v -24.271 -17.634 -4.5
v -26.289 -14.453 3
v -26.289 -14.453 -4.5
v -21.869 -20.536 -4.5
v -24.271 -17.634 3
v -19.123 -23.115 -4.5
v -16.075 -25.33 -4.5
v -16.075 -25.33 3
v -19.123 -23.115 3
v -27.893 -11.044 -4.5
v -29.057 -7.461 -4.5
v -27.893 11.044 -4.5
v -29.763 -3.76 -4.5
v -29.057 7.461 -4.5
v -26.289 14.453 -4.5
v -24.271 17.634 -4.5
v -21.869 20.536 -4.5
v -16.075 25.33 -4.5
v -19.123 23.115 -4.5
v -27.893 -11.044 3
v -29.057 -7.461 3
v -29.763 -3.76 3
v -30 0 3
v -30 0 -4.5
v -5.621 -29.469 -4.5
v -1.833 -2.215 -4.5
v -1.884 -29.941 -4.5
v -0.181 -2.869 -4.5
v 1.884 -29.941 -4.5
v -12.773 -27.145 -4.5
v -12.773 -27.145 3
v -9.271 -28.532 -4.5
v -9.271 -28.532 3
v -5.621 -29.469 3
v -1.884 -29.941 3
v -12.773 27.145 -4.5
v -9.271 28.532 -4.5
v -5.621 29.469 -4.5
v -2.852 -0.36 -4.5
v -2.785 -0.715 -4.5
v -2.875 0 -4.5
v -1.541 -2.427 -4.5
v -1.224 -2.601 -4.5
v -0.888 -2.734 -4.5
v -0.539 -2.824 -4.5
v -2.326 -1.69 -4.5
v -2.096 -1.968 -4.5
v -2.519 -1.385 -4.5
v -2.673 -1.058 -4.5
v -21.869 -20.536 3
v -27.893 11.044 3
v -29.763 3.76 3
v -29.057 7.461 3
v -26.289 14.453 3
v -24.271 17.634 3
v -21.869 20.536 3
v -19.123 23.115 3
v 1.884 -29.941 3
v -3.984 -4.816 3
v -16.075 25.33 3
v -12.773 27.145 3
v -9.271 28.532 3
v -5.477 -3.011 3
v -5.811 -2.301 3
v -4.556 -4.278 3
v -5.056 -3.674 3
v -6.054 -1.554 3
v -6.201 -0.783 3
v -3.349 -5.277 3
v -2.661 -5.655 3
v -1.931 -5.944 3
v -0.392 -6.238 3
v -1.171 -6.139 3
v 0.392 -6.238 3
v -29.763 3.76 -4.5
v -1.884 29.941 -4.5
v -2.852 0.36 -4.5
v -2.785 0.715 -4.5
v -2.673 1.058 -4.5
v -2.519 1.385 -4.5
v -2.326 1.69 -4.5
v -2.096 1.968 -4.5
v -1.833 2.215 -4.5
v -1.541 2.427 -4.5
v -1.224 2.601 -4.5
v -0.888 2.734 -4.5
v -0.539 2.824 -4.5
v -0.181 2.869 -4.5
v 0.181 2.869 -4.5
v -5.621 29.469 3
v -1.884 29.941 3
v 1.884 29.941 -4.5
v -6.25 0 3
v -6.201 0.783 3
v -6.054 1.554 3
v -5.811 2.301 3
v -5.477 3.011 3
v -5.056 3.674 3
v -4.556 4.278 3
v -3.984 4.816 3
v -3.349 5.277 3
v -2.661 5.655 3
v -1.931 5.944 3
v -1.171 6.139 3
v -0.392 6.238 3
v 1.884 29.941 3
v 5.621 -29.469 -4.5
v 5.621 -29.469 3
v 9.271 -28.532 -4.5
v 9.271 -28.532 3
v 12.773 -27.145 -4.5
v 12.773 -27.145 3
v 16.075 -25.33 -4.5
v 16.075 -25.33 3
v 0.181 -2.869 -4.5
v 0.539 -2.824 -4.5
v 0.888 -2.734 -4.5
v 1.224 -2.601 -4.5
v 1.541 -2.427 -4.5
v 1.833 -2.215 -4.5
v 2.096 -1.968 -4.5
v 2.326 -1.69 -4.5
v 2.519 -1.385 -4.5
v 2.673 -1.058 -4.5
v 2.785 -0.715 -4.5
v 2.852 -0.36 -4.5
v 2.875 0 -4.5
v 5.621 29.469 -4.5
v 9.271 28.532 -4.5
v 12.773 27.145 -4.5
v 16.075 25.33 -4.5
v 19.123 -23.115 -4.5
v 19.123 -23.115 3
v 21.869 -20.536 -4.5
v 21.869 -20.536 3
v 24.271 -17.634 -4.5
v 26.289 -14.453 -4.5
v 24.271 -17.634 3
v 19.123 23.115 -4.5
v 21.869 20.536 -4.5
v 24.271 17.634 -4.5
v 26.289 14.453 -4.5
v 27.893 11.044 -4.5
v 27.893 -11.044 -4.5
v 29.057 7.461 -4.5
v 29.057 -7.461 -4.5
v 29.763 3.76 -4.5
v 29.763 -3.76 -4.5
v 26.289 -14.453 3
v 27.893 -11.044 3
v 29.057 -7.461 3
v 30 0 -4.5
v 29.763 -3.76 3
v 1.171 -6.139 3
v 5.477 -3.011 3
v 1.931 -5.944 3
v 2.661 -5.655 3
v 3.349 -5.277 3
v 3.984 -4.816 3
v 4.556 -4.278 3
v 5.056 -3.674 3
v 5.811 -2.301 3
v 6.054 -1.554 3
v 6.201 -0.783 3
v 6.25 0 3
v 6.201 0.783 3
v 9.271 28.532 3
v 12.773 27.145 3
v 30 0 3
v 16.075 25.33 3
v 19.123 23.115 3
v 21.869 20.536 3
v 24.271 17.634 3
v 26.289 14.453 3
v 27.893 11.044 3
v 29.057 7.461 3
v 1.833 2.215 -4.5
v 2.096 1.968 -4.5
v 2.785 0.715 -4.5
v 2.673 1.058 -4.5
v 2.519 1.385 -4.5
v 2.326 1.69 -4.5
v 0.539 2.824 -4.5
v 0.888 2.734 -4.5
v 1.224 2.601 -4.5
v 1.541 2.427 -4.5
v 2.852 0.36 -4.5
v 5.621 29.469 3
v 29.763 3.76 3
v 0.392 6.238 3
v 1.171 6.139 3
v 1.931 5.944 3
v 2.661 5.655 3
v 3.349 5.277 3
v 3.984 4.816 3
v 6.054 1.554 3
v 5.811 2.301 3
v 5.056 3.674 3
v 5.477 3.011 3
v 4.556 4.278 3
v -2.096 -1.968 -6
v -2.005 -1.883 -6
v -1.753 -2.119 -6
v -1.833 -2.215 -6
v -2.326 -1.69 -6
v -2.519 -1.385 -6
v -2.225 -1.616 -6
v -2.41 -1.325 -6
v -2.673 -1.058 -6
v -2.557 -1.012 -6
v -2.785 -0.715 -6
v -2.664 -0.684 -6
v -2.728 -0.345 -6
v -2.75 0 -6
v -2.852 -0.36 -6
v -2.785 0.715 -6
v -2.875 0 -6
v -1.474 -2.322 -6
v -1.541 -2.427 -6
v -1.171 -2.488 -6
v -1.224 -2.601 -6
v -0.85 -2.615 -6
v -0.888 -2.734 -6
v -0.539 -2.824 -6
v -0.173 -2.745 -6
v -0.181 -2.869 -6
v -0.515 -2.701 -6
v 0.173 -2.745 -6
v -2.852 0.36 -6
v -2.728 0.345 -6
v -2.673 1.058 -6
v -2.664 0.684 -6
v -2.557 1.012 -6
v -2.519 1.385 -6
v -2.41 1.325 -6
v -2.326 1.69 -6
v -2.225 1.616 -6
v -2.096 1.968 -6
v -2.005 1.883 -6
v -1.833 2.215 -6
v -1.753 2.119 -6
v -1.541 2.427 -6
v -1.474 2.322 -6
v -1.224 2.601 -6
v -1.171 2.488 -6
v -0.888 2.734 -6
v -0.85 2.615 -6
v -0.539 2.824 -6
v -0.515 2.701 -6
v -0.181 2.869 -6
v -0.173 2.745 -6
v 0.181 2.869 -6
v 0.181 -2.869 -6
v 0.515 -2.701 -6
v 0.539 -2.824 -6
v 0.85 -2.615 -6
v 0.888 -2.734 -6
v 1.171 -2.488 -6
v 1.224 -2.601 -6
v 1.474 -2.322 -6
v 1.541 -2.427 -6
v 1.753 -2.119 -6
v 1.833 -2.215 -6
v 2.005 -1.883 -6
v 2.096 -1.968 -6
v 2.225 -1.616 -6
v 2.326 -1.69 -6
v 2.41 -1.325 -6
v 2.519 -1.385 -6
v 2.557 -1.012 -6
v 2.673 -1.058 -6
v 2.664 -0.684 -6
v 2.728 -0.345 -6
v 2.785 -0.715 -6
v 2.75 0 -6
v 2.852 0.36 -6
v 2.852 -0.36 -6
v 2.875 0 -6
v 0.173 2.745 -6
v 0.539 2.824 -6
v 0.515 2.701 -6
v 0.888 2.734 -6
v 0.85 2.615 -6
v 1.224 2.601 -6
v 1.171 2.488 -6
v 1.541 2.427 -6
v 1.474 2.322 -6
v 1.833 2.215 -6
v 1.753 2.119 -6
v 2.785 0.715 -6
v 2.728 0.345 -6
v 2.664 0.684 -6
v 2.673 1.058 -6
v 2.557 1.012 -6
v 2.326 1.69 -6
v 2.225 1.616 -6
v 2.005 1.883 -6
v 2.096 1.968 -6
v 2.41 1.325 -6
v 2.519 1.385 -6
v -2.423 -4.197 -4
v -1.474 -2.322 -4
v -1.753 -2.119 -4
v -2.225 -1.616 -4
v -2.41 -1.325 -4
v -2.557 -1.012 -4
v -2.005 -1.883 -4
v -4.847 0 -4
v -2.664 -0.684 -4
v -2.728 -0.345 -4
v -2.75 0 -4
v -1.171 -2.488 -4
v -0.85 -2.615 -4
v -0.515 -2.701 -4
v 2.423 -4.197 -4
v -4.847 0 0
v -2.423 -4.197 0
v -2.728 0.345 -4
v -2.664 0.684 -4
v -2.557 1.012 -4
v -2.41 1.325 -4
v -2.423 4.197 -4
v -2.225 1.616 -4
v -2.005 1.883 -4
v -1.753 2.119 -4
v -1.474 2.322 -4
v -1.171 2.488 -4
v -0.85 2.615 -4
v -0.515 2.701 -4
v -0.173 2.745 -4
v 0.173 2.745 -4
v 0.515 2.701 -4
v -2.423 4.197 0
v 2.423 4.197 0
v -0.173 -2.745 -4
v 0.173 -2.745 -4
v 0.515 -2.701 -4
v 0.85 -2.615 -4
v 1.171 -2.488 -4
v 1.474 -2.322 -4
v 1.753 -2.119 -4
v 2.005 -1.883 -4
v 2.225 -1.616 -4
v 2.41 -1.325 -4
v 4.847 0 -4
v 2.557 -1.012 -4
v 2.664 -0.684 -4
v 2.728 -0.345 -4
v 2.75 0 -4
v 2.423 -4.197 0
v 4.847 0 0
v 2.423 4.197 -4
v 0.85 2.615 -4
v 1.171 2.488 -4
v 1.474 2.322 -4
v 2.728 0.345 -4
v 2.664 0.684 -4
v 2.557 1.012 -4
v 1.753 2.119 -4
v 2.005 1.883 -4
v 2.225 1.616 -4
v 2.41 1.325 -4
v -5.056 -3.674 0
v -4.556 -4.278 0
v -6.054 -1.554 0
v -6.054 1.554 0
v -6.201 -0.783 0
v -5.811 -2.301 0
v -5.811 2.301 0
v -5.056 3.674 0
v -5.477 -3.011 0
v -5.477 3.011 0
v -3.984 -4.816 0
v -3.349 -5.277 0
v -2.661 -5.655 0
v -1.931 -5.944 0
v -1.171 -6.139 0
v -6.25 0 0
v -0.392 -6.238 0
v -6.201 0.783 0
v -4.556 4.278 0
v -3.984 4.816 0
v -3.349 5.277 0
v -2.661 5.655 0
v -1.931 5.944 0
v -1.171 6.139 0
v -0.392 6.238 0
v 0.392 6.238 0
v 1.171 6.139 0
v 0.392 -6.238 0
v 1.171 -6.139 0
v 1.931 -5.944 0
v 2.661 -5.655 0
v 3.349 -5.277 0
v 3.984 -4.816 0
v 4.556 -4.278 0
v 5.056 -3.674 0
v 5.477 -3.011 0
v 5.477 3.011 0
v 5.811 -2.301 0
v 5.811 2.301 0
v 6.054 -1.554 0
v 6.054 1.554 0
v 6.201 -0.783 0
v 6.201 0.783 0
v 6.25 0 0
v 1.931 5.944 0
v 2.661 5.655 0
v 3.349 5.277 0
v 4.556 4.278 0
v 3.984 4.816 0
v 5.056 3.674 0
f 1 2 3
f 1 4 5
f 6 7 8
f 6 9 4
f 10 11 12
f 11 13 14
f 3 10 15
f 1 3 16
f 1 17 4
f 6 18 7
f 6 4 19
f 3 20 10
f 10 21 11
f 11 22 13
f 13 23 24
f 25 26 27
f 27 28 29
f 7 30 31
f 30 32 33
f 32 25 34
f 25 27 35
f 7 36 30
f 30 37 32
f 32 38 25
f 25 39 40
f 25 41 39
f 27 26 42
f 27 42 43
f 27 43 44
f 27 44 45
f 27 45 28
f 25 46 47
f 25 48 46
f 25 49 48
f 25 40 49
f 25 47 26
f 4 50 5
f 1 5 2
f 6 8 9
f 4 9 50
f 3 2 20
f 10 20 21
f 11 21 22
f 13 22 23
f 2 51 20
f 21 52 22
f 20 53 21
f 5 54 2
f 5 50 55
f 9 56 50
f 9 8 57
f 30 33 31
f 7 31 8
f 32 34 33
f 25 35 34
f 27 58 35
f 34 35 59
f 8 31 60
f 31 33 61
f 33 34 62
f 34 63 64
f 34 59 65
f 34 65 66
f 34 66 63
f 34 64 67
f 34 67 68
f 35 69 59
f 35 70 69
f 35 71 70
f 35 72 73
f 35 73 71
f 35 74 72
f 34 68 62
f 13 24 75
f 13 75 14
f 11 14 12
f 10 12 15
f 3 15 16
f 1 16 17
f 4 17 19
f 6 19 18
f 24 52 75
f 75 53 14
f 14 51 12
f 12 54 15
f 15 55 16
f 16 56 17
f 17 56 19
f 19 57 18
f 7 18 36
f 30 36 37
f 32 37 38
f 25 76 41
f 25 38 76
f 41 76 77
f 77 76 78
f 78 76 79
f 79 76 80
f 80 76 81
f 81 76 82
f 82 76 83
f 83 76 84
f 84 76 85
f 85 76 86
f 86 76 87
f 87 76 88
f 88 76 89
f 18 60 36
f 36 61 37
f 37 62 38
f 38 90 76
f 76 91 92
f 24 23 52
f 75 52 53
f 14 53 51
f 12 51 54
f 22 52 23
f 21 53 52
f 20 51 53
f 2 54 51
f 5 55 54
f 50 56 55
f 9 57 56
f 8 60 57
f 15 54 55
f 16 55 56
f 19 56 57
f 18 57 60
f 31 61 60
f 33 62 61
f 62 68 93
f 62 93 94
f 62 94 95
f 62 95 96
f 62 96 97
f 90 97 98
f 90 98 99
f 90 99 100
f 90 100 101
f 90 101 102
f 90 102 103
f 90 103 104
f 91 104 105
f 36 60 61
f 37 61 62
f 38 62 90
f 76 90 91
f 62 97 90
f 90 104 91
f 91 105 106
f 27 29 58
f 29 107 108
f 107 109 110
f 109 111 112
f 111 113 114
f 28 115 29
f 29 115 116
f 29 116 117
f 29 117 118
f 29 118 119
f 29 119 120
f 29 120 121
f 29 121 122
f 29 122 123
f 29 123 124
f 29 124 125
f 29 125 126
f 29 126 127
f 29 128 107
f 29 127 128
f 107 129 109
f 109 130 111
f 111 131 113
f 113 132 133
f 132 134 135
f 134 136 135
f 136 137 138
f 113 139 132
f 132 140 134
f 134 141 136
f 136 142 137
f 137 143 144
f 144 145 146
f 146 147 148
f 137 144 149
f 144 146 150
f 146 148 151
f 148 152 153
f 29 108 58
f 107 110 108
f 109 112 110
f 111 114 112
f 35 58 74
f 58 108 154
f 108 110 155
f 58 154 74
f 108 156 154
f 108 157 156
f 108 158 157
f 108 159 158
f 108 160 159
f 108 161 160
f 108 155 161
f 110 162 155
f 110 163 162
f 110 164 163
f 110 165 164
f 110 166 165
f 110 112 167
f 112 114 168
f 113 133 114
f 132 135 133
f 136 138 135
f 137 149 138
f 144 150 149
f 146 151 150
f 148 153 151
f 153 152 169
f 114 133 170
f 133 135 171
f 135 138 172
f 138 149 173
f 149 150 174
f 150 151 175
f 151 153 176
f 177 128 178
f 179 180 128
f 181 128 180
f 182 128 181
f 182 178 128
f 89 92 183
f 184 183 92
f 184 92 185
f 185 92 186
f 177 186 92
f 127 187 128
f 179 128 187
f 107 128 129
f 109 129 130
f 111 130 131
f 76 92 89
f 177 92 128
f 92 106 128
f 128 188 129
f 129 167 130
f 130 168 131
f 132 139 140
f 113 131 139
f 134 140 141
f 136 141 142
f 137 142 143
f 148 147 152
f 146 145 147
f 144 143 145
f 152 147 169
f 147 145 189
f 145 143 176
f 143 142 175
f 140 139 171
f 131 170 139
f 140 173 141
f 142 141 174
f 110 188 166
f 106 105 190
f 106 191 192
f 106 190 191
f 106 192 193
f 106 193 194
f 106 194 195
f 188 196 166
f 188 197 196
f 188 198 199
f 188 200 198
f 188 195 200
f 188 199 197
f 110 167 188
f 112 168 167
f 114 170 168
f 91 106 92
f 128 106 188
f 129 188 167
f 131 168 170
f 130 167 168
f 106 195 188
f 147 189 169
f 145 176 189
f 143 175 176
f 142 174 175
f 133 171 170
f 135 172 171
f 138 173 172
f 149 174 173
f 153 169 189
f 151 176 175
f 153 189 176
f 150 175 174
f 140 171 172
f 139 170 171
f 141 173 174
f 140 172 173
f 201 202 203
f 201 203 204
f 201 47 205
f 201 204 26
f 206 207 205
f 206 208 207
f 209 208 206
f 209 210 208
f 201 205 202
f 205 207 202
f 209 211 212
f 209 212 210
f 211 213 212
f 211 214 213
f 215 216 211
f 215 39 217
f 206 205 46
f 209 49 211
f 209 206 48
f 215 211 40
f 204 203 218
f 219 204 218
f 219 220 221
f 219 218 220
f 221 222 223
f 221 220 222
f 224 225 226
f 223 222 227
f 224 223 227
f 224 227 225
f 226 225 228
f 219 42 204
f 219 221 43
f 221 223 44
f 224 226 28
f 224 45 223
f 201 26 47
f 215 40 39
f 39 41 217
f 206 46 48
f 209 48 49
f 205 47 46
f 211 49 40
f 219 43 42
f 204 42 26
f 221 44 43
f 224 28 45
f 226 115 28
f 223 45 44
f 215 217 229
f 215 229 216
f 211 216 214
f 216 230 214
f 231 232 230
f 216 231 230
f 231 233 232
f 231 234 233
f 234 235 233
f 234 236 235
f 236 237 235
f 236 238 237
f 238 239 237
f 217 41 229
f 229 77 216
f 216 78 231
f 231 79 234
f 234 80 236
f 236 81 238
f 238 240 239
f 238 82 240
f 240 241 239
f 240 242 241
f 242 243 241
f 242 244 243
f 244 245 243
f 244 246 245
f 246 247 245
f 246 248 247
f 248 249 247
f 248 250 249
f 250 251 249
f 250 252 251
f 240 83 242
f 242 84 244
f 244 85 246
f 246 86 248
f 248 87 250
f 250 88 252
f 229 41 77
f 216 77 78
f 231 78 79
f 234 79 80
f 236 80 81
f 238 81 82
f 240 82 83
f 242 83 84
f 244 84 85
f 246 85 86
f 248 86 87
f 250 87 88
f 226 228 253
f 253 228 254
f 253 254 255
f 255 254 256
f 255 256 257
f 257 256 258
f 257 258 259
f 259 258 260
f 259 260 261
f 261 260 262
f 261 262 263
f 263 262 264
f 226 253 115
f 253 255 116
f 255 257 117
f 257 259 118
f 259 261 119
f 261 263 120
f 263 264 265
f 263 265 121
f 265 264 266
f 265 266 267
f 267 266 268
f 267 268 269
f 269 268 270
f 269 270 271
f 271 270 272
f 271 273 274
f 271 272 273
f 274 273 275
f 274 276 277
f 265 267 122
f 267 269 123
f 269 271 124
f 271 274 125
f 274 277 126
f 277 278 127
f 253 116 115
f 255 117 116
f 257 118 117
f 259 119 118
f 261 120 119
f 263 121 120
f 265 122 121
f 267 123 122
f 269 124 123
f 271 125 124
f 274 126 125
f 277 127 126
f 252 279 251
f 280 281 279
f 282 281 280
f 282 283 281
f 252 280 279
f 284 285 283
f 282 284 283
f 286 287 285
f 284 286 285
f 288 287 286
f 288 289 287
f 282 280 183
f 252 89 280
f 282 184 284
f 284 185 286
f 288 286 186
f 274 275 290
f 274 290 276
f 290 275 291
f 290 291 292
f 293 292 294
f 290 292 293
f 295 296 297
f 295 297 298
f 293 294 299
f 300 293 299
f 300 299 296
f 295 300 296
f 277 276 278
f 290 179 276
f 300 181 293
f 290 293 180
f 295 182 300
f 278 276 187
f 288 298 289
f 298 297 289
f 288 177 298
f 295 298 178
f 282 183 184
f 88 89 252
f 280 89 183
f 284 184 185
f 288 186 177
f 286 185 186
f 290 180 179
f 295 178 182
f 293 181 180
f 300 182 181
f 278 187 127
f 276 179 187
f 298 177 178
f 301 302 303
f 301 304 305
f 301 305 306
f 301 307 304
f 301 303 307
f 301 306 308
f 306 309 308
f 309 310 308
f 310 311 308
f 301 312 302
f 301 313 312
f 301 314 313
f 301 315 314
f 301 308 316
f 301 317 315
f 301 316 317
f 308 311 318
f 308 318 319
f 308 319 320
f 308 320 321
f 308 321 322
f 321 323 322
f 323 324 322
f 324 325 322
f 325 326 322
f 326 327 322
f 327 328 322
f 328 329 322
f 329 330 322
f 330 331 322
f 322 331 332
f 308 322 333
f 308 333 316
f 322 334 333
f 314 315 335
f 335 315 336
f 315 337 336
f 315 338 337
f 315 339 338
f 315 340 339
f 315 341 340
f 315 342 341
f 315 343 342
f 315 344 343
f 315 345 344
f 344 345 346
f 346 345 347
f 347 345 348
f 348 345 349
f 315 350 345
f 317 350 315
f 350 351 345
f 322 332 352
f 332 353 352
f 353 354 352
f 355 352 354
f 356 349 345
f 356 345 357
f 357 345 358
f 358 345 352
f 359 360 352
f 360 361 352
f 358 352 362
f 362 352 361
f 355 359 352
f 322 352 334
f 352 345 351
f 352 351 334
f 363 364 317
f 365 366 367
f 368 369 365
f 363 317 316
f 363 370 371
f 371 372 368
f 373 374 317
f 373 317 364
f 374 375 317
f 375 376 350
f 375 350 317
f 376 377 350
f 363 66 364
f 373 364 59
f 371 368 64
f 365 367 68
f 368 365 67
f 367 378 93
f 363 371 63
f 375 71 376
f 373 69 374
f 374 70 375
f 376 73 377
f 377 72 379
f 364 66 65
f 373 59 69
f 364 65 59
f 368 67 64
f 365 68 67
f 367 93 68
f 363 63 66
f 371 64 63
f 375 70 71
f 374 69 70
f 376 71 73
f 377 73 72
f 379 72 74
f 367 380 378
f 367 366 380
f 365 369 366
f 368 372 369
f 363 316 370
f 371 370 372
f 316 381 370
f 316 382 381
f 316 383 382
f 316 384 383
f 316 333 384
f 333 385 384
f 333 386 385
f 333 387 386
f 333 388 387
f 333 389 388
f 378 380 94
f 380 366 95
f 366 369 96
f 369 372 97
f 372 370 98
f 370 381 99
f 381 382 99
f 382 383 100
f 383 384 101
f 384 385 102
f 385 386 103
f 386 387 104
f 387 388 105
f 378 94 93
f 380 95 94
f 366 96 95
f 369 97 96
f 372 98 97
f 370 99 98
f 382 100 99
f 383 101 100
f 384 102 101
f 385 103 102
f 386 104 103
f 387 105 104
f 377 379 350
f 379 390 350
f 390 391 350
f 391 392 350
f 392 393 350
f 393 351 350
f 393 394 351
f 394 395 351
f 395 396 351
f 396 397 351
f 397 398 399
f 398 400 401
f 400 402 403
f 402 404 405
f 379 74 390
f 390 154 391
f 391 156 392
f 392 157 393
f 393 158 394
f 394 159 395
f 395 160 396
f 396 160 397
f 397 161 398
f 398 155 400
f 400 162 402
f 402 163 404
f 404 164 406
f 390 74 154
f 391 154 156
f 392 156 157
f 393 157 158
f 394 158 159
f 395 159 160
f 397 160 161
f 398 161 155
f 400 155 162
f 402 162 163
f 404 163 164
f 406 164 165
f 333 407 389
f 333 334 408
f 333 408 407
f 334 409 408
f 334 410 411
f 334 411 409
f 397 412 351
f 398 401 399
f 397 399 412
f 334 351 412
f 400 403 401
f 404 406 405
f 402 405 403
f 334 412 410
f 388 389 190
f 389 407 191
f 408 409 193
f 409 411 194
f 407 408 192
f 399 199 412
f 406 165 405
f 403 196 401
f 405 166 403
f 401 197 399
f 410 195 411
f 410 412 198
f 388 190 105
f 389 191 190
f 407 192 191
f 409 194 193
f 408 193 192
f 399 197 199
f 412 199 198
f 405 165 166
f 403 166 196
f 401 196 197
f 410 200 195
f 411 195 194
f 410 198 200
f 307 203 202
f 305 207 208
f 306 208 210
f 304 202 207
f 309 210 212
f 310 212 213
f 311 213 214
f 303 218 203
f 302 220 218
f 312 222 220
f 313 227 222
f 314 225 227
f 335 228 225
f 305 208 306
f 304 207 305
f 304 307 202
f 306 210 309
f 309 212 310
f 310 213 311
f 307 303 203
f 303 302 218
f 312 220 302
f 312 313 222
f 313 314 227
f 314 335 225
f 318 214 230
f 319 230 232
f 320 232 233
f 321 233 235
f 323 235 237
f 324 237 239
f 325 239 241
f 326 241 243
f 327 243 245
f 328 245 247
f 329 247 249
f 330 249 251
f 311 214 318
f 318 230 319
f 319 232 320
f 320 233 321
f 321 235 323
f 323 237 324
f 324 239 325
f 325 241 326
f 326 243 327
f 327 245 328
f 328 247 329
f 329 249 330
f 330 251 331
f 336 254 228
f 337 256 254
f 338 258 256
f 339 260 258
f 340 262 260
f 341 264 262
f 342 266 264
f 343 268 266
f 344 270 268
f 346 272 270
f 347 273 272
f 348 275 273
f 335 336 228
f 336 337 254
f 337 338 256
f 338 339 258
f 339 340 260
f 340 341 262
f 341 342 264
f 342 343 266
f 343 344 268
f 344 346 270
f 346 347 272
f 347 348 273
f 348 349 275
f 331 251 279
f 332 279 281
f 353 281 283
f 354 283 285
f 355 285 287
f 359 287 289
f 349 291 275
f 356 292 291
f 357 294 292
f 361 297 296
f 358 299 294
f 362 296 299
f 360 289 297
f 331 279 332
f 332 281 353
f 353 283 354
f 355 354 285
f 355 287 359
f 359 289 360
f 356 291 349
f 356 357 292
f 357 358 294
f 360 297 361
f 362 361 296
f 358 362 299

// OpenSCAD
$fn = 50;


difference() {
	union() {
		translate(v = [0, 0, -4.5000000000]) {
			cylinder(h = 7.5000000000, r = 30.0000000000);
		}
		#translate(v = [0, 0, -6.0000000000]) {
			cylinder(h = 6, r = 2.8750000000);
		}
	}
	union() {
		translate(v = [0, 0, 0]) {
			rotate(a = [0, 0, 0]) {
				difference() {
					union() {
						translate(v = [0, 0, -4]) {
							linear_extrude(height = 4) {
								polygon(points = [[4.8468000000, 0.0000000000], [2.4234000000, 4.1974519271], [-2.4234000000, 4.1974519271], [-4.8468000000, 0.0000000000], [-2.4234000000, -4.1974519271], [2.4234000000, -4.1974519271]]);
							}
						}
					}
					union();
				}
			}
		}
		#cylinder(h = 3, r = 6.2500000000);
		#translate(v = [0, 0, -100.0000000000]) {
			cylinder(h = 200, r = 2.7500000000);
		}
	}
}
